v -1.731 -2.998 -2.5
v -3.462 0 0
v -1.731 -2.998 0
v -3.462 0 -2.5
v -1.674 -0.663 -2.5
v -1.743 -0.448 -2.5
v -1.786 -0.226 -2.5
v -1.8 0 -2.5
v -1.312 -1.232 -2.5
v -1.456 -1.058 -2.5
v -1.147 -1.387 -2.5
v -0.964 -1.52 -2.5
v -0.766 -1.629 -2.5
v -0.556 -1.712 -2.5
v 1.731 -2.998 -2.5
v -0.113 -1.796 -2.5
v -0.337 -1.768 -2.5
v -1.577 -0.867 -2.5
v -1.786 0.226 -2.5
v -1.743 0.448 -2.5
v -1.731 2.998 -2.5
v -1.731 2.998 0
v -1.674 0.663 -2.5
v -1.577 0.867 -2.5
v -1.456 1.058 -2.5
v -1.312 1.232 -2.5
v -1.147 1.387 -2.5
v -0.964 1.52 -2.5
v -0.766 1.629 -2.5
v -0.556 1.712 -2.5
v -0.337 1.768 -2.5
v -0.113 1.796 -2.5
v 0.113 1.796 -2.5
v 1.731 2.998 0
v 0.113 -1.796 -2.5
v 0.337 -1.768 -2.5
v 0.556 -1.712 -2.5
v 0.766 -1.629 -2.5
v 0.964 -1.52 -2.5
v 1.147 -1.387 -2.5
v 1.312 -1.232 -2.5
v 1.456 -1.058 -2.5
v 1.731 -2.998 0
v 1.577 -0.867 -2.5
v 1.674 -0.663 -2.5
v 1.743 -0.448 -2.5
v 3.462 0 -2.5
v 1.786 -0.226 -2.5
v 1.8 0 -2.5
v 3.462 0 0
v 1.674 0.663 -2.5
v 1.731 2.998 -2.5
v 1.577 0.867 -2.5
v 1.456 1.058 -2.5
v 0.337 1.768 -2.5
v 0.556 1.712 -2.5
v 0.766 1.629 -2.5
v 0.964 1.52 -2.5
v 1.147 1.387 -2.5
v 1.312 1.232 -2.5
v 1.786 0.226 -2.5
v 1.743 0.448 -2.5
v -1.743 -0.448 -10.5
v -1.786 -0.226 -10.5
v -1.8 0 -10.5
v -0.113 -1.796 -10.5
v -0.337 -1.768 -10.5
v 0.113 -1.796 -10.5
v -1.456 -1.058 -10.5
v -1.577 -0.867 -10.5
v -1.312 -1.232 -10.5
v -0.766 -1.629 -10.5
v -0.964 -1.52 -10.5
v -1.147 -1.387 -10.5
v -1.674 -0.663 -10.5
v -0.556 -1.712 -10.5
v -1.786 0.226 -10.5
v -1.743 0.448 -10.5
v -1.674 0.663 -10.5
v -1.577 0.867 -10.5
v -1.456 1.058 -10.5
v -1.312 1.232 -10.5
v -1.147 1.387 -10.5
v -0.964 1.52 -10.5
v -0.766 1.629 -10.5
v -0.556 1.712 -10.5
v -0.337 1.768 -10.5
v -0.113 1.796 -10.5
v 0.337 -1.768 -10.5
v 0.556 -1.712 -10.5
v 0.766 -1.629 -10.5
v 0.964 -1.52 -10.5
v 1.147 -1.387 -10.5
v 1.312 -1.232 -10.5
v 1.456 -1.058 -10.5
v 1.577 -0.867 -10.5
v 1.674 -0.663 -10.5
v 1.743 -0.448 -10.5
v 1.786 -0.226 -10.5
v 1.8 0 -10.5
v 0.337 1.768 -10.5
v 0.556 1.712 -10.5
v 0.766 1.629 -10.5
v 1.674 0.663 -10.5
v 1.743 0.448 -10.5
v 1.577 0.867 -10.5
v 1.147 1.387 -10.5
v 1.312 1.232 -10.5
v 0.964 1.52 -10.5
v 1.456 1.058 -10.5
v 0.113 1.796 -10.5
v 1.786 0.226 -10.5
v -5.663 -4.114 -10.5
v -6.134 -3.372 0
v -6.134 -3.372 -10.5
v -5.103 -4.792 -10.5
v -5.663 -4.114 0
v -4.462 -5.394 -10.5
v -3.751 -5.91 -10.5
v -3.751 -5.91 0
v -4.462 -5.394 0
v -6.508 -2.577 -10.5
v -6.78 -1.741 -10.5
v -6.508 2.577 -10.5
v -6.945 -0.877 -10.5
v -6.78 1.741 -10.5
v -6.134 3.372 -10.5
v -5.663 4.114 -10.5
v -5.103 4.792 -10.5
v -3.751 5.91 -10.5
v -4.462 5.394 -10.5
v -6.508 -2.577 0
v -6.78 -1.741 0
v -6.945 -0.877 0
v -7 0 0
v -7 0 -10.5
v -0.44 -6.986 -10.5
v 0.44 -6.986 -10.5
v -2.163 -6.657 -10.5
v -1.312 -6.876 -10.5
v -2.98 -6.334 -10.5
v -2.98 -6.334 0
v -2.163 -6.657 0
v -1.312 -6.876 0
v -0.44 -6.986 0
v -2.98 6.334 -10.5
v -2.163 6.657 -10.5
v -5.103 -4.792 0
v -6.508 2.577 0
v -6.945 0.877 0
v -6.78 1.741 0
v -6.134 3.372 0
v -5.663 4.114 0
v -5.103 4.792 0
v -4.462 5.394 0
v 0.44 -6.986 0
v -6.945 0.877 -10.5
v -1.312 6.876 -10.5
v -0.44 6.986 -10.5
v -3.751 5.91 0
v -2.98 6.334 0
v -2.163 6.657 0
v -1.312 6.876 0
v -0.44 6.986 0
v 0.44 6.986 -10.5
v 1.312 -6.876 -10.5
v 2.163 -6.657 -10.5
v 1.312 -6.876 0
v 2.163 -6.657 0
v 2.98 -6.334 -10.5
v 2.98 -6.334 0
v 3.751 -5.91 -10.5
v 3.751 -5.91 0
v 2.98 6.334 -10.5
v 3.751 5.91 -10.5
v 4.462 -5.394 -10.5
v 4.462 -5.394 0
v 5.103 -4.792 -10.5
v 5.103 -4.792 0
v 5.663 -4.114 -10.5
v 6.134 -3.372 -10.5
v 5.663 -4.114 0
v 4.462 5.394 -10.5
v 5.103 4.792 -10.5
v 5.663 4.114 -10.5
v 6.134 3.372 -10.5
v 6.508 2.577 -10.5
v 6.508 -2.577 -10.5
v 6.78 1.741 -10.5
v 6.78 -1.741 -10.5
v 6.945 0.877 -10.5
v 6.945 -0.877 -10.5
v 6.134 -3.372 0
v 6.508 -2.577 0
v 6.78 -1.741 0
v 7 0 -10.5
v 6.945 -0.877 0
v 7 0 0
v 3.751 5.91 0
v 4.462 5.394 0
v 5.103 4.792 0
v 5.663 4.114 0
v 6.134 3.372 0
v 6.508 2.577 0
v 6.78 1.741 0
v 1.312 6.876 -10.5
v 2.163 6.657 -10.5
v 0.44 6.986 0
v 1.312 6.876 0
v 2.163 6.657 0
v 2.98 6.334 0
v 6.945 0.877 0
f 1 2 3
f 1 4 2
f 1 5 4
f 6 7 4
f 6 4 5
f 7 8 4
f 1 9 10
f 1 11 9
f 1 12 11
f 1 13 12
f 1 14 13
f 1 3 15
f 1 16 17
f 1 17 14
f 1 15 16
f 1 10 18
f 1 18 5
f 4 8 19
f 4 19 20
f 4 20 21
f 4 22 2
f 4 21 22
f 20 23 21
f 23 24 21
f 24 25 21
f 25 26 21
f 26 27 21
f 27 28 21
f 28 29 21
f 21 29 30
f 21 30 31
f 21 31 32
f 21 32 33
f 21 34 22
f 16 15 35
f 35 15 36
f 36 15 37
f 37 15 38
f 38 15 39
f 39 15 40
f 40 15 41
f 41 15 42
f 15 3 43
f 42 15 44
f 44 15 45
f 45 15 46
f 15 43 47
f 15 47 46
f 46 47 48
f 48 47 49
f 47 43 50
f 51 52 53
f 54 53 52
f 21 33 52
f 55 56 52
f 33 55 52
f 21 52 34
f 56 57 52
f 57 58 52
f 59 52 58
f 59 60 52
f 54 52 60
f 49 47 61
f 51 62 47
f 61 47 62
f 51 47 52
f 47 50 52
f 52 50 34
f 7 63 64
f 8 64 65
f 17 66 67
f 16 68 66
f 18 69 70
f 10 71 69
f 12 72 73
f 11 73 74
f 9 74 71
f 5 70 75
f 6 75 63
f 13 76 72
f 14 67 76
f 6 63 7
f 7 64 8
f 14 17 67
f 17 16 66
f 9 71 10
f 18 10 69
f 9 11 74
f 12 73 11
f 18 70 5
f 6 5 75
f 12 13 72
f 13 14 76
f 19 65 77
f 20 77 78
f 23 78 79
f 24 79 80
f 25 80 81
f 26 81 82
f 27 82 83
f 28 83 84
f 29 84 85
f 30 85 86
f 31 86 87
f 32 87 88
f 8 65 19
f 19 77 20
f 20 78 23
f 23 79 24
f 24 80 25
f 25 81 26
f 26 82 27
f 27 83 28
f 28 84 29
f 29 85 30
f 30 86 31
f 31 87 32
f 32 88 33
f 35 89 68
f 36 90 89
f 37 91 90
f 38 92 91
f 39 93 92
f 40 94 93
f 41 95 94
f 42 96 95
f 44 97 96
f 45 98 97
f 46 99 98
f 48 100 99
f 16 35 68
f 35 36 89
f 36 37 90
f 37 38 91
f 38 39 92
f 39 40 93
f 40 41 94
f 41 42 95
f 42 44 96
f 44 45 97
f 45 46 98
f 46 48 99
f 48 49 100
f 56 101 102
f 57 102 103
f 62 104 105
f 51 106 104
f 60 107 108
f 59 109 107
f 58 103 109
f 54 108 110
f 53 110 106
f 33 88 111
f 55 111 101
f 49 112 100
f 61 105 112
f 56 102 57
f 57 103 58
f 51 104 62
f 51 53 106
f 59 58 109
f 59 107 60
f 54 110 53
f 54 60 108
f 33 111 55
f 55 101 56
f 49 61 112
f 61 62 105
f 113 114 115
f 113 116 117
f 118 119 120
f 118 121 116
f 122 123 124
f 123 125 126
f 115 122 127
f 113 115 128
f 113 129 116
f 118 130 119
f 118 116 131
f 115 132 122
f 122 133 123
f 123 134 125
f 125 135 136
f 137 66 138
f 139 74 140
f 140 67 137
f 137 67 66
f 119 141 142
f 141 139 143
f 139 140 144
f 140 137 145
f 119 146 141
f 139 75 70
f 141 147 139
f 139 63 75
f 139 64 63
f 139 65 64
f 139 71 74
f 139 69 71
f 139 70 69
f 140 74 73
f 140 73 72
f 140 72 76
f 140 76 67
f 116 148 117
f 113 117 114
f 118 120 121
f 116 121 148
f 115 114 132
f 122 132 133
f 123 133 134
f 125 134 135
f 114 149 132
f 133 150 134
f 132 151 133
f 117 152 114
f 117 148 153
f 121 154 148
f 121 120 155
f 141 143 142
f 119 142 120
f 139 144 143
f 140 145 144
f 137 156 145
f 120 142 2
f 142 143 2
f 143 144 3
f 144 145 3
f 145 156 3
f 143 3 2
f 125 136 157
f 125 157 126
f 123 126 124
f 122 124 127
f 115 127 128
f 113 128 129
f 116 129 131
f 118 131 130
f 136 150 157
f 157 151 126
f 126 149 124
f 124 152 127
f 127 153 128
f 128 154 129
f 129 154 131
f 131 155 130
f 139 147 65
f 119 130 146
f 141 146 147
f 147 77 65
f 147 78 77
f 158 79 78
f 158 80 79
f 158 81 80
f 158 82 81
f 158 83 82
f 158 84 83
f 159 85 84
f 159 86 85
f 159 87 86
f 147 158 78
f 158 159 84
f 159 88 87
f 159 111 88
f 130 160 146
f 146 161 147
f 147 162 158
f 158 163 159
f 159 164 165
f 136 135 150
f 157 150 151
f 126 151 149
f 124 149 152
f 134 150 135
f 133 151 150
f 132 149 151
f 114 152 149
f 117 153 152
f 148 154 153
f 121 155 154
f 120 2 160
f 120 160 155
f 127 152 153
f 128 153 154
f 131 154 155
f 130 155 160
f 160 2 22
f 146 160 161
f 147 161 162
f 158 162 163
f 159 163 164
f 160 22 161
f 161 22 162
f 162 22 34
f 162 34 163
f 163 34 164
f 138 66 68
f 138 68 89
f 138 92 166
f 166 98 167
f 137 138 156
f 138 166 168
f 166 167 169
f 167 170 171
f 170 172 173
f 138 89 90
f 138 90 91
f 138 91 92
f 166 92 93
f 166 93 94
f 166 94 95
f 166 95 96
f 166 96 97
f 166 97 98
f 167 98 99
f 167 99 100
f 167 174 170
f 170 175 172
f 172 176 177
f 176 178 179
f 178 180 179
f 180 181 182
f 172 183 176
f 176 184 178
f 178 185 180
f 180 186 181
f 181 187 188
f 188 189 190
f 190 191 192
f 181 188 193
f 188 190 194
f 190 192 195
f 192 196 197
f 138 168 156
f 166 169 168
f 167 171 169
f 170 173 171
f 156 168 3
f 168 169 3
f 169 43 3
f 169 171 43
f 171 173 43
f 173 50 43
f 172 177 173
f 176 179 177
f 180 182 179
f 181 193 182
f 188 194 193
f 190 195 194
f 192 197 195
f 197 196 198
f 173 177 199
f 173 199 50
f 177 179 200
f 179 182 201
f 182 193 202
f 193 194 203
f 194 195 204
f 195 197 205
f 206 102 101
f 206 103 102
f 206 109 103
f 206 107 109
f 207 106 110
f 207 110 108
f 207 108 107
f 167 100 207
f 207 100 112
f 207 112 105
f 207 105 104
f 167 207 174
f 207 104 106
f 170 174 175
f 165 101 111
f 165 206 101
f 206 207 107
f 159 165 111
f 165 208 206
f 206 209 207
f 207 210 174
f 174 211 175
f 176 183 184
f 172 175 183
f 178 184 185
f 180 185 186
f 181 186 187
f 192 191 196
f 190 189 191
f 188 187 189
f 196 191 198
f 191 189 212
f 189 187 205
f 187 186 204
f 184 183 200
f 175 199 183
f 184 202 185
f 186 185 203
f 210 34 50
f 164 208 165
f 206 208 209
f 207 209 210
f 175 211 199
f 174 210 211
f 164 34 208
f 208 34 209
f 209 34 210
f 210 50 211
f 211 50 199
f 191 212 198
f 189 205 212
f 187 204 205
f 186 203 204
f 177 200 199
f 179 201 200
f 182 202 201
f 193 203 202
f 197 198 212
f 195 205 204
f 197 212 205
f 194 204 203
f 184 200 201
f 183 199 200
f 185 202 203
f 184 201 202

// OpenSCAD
$fn = 50;

difference() {
	union() {
		translate(v = [0, 0, -10.5]) {
			cylinder(h = 10.5, r = 7.0);
		}
	}
	union() {
		translate(v = [0, 0, 0]) {
			rotate(a = [0, 0, 0]) {
				difference() {
					union() {
						translate(v = [0, 0, -2.5]) {
							linear_extrude(height = 2.5) {
								polygon(points = [[3.4619999999999997, 0.0], [1.7310000000000003, 2.9981799479017264], [-1.7309999999999992, 2.9981799479017264], [-3.4619999999999997, 4.2397272186481365e-16], [-1.7310000000000014, -2.998179947901726], [1.7309999999999977, -2.9981799479017277]]);
							}
						}
					}
					union();
				}
			}
		}
		#translate(v = [0, 0, -100.0]) {
			cylinder(h = 200, r = 1.8);
		}
	}
}
